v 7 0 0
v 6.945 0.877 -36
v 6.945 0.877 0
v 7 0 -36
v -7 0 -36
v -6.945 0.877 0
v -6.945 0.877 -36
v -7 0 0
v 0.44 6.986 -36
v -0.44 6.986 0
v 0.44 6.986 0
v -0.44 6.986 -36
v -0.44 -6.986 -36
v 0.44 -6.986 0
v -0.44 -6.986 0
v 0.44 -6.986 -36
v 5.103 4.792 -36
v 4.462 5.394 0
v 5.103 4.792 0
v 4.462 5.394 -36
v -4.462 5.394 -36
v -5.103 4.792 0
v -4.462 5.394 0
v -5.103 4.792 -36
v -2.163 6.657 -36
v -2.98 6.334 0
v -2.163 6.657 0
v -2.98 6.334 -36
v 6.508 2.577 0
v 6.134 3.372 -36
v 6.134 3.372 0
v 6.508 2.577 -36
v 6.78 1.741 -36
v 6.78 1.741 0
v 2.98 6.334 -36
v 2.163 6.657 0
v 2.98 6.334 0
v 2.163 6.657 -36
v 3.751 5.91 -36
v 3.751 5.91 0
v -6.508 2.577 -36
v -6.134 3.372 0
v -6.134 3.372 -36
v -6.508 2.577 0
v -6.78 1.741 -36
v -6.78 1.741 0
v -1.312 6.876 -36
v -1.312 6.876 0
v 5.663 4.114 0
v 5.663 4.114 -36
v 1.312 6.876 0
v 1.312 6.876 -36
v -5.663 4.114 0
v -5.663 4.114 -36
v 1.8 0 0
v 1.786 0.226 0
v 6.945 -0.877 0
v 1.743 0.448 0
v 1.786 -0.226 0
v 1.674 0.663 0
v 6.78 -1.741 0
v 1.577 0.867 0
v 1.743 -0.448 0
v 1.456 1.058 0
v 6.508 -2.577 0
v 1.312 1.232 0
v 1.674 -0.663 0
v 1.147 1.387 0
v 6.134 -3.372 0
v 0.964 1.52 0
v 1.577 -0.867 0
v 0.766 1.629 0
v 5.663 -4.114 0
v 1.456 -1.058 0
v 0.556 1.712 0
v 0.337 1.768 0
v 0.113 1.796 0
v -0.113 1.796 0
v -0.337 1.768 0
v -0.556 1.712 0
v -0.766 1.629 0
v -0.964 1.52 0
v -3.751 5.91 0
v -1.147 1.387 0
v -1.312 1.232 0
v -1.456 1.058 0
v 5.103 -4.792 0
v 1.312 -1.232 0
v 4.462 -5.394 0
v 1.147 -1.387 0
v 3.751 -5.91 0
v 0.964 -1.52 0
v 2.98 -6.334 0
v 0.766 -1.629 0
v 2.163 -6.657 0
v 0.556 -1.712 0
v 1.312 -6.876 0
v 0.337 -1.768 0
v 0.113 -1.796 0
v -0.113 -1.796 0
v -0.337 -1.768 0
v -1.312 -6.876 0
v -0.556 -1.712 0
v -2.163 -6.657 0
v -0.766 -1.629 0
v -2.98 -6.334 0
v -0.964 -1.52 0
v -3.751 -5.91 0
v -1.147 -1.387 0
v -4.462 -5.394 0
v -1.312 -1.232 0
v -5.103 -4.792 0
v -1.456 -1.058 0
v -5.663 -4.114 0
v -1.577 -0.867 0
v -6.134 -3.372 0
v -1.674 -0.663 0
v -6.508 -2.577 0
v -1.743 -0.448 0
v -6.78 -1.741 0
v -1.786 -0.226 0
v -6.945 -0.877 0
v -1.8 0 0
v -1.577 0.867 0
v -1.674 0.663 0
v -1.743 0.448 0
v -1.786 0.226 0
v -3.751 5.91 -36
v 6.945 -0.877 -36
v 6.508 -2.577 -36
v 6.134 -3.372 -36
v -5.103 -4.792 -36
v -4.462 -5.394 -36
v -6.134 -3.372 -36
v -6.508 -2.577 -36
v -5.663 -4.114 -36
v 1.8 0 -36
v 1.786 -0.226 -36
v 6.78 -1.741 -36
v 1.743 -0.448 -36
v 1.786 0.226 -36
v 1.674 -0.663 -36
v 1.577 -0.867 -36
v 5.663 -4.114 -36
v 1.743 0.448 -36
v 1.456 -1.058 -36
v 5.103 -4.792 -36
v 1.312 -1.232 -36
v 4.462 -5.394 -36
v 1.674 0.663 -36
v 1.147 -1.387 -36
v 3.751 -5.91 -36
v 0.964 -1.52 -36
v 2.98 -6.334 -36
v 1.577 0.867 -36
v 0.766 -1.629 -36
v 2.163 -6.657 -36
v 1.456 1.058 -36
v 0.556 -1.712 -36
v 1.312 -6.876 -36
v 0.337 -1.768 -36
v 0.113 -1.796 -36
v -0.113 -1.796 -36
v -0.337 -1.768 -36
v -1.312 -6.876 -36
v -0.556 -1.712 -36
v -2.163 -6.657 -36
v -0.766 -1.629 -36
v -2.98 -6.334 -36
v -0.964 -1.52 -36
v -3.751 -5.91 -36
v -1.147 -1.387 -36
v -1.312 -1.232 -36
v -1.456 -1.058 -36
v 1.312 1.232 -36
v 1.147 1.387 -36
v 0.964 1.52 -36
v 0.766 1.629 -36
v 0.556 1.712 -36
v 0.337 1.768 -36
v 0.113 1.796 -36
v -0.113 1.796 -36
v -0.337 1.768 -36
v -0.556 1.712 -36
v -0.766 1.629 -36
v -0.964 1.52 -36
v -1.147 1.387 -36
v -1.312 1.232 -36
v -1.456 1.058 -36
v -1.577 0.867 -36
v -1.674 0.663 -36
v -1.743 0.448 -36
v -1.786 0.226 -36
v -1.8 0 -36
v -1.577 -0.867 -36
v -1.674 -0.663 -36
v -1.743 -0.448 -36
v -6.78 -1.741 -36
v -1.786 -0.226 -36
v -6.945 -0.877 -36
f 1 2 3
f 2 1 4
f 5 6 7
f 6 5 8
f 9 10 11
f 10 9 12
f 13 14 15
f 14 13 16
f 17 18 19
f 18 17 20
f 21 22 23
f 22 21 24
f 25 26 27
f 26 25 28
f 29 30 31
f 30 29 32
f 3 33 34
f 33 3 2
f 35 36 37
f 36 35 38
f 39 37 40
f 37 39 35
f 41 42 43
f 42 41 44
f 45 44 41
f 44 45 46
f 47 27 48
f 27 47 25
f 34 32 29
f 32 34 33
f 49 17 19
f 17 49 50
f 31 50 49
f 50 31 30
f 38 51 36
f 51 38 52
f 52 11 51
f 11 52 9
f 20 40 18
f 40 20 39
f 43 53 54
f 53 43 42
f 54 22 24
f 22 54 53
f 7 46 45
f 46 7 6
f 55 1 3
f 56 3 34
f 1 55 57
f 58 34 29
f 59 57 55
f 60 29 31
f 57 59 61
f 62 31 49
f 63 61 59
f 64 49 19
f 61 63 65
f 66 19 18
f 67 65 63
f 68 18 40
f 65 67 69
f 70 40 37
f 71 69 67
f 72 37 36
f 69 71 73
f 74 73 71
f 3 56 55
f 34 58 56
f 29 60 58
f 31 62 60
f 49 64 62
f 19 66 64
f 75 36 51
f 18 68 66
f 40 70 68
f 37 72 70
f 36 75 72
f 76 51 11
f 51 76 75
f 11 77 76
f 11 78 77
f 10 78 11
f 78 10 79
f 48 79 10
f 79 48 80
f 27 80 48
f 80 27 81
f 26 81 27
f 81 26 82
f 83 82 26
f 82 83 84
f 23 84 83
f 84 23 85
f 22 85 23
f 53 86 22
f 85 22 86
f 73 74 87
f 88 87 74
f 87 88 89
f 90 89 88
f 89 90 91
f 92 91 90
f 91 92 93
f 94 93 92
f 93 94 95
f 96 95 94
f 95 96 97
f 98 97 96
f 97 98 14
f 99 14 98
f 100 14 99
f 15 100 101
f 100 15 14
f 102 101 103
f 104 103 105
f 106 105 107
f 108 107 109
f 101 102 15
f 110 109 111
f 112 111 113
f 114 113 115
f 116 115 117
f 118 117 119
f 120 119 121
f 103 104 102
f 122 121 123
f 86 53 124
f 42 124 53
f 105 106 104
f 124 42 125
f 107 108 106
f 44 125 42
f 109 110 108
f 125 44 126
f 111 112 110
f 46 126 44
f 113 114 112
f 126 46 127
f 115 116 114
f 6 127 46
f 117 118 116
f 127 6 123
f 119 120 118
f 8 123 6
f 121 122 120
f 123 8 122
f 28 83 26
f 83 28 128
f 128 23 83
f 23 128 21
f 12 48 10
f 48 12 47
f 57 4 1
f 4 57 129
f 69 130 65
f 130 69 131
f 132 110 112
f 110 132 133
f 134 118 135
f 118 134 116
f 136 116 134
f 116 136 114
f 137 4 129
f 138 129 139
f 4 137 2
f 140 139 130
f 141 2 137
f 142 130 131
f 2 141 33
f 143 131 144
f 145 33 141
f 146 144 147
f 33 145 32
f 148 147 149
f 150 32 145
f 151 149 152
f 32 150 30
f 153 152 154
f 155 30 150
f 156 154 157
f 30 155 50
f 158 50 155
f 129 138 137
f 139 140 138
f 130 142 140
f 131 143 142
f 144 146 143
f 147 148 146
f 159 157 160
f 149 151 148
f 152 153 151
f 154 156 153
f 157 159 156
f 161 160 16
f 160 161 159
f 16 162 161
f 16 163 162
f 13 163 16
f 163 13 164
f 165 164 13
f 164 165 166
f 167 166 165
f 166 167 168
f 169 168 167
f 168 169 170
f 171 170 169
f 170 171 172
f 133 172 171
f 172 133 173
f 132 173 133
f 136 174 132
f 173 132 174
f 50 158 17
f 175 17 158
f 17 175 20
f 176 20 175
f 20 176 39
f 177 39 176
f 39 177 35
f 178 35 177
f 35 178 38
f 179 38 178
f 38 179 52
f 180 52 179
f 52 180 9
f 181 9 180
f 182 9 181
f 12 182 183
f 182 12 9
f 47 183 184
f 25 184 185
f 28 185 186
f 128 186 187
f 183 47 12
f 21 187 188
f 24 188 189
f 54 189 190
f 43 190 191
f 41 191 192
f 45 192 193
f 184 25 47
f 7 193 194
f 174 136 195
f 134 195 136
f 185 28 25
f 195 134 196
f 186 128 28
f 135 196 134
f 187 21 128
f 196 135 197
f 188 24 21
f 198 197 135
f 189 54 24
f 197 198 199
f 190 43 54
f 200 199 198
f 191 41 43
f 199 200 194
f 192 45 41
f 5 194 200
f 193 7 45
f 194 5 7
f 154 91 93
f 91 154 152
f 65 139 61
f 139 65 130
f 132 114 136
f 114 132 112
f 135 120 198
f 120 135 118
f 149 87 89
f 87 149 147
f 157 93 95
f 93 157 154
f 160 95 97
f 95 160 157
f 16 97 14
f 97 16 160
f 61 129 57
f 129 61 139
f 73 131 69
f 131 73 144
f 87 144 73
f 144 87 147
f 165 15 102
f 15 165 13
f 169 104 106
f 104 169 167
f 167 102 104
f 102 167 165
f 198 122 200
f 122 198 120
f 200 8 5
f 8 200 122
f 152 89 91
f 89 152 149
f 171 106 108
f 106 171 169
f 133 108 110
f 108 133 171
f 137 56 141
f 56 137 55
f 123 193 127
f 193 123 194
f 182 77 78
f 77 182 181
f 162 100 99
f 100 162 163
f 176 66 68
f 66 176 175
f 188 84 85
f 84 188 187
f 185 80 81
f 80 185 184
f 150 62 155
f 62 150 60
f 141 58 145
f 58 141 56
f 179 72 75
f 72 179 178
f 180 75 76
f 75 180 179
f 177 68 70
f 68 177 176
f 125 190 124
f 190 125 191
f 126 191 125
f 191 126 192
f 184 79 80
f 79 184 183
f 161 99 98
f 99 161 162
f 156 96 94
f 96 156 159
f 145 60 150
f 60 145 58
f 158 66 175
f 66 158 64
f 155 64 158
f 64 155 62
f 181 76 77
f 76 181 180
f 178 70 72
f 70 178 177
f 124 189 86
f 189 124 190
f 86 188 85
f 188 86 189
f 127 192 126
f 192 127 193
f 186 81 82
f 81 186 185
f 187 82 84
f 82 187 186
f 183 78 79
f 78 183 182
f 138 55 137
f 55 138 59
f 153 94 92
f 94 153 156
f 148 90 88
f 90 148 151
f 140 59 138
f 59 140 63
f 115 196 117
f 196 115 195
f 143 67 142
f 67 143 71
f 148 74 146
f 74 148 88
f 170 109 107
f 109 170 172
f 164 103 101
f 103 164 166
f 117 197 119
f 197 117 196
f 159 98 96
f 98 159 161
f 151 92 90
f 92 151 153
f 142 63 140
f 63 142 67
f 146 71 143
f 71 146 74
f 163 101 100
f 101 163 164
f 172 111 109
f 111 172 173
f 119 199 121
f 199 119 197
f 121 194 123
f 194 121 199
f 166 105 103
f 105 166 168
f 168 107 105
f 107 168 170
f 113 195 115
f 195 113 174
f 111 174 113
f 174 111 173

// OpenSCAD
$fn = 50;


difference() {
	union() {
		translate(v = [0, 0, -36.0000000000]) {
			cylinder(h = 36, r = 7.0000000000);
		}
		cylinder(h = 0, r = 10.0000000000);
	}
	union() {
		#translate(v = [0, 0, -36]) {
			cylinder(h = 36, r = 1.8000000000);
		}
	}
}
